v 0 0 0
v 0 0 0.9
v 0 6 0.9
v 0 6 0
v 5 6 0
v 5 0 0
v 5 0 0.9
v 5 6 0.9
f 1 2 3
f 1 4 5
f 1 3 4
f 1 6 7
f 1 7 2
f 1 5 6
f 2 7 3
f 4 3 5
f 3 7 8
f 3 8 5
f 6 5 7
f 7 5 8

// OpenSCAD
/* Warning, this is a very basic generator with a lot of approximation 
input data : [VQFN, QEA, 5x6x0.9mm, 28, , A, C04-01274A]
generated by com.zoubworld.electronics.cad.model3d.Basic
Date : Sun Feb 15 10:50:49 CET 2026
*/

//body
color("black")
translate([0,0,0])
cube([5.0,6.0,0.9], center=false);
